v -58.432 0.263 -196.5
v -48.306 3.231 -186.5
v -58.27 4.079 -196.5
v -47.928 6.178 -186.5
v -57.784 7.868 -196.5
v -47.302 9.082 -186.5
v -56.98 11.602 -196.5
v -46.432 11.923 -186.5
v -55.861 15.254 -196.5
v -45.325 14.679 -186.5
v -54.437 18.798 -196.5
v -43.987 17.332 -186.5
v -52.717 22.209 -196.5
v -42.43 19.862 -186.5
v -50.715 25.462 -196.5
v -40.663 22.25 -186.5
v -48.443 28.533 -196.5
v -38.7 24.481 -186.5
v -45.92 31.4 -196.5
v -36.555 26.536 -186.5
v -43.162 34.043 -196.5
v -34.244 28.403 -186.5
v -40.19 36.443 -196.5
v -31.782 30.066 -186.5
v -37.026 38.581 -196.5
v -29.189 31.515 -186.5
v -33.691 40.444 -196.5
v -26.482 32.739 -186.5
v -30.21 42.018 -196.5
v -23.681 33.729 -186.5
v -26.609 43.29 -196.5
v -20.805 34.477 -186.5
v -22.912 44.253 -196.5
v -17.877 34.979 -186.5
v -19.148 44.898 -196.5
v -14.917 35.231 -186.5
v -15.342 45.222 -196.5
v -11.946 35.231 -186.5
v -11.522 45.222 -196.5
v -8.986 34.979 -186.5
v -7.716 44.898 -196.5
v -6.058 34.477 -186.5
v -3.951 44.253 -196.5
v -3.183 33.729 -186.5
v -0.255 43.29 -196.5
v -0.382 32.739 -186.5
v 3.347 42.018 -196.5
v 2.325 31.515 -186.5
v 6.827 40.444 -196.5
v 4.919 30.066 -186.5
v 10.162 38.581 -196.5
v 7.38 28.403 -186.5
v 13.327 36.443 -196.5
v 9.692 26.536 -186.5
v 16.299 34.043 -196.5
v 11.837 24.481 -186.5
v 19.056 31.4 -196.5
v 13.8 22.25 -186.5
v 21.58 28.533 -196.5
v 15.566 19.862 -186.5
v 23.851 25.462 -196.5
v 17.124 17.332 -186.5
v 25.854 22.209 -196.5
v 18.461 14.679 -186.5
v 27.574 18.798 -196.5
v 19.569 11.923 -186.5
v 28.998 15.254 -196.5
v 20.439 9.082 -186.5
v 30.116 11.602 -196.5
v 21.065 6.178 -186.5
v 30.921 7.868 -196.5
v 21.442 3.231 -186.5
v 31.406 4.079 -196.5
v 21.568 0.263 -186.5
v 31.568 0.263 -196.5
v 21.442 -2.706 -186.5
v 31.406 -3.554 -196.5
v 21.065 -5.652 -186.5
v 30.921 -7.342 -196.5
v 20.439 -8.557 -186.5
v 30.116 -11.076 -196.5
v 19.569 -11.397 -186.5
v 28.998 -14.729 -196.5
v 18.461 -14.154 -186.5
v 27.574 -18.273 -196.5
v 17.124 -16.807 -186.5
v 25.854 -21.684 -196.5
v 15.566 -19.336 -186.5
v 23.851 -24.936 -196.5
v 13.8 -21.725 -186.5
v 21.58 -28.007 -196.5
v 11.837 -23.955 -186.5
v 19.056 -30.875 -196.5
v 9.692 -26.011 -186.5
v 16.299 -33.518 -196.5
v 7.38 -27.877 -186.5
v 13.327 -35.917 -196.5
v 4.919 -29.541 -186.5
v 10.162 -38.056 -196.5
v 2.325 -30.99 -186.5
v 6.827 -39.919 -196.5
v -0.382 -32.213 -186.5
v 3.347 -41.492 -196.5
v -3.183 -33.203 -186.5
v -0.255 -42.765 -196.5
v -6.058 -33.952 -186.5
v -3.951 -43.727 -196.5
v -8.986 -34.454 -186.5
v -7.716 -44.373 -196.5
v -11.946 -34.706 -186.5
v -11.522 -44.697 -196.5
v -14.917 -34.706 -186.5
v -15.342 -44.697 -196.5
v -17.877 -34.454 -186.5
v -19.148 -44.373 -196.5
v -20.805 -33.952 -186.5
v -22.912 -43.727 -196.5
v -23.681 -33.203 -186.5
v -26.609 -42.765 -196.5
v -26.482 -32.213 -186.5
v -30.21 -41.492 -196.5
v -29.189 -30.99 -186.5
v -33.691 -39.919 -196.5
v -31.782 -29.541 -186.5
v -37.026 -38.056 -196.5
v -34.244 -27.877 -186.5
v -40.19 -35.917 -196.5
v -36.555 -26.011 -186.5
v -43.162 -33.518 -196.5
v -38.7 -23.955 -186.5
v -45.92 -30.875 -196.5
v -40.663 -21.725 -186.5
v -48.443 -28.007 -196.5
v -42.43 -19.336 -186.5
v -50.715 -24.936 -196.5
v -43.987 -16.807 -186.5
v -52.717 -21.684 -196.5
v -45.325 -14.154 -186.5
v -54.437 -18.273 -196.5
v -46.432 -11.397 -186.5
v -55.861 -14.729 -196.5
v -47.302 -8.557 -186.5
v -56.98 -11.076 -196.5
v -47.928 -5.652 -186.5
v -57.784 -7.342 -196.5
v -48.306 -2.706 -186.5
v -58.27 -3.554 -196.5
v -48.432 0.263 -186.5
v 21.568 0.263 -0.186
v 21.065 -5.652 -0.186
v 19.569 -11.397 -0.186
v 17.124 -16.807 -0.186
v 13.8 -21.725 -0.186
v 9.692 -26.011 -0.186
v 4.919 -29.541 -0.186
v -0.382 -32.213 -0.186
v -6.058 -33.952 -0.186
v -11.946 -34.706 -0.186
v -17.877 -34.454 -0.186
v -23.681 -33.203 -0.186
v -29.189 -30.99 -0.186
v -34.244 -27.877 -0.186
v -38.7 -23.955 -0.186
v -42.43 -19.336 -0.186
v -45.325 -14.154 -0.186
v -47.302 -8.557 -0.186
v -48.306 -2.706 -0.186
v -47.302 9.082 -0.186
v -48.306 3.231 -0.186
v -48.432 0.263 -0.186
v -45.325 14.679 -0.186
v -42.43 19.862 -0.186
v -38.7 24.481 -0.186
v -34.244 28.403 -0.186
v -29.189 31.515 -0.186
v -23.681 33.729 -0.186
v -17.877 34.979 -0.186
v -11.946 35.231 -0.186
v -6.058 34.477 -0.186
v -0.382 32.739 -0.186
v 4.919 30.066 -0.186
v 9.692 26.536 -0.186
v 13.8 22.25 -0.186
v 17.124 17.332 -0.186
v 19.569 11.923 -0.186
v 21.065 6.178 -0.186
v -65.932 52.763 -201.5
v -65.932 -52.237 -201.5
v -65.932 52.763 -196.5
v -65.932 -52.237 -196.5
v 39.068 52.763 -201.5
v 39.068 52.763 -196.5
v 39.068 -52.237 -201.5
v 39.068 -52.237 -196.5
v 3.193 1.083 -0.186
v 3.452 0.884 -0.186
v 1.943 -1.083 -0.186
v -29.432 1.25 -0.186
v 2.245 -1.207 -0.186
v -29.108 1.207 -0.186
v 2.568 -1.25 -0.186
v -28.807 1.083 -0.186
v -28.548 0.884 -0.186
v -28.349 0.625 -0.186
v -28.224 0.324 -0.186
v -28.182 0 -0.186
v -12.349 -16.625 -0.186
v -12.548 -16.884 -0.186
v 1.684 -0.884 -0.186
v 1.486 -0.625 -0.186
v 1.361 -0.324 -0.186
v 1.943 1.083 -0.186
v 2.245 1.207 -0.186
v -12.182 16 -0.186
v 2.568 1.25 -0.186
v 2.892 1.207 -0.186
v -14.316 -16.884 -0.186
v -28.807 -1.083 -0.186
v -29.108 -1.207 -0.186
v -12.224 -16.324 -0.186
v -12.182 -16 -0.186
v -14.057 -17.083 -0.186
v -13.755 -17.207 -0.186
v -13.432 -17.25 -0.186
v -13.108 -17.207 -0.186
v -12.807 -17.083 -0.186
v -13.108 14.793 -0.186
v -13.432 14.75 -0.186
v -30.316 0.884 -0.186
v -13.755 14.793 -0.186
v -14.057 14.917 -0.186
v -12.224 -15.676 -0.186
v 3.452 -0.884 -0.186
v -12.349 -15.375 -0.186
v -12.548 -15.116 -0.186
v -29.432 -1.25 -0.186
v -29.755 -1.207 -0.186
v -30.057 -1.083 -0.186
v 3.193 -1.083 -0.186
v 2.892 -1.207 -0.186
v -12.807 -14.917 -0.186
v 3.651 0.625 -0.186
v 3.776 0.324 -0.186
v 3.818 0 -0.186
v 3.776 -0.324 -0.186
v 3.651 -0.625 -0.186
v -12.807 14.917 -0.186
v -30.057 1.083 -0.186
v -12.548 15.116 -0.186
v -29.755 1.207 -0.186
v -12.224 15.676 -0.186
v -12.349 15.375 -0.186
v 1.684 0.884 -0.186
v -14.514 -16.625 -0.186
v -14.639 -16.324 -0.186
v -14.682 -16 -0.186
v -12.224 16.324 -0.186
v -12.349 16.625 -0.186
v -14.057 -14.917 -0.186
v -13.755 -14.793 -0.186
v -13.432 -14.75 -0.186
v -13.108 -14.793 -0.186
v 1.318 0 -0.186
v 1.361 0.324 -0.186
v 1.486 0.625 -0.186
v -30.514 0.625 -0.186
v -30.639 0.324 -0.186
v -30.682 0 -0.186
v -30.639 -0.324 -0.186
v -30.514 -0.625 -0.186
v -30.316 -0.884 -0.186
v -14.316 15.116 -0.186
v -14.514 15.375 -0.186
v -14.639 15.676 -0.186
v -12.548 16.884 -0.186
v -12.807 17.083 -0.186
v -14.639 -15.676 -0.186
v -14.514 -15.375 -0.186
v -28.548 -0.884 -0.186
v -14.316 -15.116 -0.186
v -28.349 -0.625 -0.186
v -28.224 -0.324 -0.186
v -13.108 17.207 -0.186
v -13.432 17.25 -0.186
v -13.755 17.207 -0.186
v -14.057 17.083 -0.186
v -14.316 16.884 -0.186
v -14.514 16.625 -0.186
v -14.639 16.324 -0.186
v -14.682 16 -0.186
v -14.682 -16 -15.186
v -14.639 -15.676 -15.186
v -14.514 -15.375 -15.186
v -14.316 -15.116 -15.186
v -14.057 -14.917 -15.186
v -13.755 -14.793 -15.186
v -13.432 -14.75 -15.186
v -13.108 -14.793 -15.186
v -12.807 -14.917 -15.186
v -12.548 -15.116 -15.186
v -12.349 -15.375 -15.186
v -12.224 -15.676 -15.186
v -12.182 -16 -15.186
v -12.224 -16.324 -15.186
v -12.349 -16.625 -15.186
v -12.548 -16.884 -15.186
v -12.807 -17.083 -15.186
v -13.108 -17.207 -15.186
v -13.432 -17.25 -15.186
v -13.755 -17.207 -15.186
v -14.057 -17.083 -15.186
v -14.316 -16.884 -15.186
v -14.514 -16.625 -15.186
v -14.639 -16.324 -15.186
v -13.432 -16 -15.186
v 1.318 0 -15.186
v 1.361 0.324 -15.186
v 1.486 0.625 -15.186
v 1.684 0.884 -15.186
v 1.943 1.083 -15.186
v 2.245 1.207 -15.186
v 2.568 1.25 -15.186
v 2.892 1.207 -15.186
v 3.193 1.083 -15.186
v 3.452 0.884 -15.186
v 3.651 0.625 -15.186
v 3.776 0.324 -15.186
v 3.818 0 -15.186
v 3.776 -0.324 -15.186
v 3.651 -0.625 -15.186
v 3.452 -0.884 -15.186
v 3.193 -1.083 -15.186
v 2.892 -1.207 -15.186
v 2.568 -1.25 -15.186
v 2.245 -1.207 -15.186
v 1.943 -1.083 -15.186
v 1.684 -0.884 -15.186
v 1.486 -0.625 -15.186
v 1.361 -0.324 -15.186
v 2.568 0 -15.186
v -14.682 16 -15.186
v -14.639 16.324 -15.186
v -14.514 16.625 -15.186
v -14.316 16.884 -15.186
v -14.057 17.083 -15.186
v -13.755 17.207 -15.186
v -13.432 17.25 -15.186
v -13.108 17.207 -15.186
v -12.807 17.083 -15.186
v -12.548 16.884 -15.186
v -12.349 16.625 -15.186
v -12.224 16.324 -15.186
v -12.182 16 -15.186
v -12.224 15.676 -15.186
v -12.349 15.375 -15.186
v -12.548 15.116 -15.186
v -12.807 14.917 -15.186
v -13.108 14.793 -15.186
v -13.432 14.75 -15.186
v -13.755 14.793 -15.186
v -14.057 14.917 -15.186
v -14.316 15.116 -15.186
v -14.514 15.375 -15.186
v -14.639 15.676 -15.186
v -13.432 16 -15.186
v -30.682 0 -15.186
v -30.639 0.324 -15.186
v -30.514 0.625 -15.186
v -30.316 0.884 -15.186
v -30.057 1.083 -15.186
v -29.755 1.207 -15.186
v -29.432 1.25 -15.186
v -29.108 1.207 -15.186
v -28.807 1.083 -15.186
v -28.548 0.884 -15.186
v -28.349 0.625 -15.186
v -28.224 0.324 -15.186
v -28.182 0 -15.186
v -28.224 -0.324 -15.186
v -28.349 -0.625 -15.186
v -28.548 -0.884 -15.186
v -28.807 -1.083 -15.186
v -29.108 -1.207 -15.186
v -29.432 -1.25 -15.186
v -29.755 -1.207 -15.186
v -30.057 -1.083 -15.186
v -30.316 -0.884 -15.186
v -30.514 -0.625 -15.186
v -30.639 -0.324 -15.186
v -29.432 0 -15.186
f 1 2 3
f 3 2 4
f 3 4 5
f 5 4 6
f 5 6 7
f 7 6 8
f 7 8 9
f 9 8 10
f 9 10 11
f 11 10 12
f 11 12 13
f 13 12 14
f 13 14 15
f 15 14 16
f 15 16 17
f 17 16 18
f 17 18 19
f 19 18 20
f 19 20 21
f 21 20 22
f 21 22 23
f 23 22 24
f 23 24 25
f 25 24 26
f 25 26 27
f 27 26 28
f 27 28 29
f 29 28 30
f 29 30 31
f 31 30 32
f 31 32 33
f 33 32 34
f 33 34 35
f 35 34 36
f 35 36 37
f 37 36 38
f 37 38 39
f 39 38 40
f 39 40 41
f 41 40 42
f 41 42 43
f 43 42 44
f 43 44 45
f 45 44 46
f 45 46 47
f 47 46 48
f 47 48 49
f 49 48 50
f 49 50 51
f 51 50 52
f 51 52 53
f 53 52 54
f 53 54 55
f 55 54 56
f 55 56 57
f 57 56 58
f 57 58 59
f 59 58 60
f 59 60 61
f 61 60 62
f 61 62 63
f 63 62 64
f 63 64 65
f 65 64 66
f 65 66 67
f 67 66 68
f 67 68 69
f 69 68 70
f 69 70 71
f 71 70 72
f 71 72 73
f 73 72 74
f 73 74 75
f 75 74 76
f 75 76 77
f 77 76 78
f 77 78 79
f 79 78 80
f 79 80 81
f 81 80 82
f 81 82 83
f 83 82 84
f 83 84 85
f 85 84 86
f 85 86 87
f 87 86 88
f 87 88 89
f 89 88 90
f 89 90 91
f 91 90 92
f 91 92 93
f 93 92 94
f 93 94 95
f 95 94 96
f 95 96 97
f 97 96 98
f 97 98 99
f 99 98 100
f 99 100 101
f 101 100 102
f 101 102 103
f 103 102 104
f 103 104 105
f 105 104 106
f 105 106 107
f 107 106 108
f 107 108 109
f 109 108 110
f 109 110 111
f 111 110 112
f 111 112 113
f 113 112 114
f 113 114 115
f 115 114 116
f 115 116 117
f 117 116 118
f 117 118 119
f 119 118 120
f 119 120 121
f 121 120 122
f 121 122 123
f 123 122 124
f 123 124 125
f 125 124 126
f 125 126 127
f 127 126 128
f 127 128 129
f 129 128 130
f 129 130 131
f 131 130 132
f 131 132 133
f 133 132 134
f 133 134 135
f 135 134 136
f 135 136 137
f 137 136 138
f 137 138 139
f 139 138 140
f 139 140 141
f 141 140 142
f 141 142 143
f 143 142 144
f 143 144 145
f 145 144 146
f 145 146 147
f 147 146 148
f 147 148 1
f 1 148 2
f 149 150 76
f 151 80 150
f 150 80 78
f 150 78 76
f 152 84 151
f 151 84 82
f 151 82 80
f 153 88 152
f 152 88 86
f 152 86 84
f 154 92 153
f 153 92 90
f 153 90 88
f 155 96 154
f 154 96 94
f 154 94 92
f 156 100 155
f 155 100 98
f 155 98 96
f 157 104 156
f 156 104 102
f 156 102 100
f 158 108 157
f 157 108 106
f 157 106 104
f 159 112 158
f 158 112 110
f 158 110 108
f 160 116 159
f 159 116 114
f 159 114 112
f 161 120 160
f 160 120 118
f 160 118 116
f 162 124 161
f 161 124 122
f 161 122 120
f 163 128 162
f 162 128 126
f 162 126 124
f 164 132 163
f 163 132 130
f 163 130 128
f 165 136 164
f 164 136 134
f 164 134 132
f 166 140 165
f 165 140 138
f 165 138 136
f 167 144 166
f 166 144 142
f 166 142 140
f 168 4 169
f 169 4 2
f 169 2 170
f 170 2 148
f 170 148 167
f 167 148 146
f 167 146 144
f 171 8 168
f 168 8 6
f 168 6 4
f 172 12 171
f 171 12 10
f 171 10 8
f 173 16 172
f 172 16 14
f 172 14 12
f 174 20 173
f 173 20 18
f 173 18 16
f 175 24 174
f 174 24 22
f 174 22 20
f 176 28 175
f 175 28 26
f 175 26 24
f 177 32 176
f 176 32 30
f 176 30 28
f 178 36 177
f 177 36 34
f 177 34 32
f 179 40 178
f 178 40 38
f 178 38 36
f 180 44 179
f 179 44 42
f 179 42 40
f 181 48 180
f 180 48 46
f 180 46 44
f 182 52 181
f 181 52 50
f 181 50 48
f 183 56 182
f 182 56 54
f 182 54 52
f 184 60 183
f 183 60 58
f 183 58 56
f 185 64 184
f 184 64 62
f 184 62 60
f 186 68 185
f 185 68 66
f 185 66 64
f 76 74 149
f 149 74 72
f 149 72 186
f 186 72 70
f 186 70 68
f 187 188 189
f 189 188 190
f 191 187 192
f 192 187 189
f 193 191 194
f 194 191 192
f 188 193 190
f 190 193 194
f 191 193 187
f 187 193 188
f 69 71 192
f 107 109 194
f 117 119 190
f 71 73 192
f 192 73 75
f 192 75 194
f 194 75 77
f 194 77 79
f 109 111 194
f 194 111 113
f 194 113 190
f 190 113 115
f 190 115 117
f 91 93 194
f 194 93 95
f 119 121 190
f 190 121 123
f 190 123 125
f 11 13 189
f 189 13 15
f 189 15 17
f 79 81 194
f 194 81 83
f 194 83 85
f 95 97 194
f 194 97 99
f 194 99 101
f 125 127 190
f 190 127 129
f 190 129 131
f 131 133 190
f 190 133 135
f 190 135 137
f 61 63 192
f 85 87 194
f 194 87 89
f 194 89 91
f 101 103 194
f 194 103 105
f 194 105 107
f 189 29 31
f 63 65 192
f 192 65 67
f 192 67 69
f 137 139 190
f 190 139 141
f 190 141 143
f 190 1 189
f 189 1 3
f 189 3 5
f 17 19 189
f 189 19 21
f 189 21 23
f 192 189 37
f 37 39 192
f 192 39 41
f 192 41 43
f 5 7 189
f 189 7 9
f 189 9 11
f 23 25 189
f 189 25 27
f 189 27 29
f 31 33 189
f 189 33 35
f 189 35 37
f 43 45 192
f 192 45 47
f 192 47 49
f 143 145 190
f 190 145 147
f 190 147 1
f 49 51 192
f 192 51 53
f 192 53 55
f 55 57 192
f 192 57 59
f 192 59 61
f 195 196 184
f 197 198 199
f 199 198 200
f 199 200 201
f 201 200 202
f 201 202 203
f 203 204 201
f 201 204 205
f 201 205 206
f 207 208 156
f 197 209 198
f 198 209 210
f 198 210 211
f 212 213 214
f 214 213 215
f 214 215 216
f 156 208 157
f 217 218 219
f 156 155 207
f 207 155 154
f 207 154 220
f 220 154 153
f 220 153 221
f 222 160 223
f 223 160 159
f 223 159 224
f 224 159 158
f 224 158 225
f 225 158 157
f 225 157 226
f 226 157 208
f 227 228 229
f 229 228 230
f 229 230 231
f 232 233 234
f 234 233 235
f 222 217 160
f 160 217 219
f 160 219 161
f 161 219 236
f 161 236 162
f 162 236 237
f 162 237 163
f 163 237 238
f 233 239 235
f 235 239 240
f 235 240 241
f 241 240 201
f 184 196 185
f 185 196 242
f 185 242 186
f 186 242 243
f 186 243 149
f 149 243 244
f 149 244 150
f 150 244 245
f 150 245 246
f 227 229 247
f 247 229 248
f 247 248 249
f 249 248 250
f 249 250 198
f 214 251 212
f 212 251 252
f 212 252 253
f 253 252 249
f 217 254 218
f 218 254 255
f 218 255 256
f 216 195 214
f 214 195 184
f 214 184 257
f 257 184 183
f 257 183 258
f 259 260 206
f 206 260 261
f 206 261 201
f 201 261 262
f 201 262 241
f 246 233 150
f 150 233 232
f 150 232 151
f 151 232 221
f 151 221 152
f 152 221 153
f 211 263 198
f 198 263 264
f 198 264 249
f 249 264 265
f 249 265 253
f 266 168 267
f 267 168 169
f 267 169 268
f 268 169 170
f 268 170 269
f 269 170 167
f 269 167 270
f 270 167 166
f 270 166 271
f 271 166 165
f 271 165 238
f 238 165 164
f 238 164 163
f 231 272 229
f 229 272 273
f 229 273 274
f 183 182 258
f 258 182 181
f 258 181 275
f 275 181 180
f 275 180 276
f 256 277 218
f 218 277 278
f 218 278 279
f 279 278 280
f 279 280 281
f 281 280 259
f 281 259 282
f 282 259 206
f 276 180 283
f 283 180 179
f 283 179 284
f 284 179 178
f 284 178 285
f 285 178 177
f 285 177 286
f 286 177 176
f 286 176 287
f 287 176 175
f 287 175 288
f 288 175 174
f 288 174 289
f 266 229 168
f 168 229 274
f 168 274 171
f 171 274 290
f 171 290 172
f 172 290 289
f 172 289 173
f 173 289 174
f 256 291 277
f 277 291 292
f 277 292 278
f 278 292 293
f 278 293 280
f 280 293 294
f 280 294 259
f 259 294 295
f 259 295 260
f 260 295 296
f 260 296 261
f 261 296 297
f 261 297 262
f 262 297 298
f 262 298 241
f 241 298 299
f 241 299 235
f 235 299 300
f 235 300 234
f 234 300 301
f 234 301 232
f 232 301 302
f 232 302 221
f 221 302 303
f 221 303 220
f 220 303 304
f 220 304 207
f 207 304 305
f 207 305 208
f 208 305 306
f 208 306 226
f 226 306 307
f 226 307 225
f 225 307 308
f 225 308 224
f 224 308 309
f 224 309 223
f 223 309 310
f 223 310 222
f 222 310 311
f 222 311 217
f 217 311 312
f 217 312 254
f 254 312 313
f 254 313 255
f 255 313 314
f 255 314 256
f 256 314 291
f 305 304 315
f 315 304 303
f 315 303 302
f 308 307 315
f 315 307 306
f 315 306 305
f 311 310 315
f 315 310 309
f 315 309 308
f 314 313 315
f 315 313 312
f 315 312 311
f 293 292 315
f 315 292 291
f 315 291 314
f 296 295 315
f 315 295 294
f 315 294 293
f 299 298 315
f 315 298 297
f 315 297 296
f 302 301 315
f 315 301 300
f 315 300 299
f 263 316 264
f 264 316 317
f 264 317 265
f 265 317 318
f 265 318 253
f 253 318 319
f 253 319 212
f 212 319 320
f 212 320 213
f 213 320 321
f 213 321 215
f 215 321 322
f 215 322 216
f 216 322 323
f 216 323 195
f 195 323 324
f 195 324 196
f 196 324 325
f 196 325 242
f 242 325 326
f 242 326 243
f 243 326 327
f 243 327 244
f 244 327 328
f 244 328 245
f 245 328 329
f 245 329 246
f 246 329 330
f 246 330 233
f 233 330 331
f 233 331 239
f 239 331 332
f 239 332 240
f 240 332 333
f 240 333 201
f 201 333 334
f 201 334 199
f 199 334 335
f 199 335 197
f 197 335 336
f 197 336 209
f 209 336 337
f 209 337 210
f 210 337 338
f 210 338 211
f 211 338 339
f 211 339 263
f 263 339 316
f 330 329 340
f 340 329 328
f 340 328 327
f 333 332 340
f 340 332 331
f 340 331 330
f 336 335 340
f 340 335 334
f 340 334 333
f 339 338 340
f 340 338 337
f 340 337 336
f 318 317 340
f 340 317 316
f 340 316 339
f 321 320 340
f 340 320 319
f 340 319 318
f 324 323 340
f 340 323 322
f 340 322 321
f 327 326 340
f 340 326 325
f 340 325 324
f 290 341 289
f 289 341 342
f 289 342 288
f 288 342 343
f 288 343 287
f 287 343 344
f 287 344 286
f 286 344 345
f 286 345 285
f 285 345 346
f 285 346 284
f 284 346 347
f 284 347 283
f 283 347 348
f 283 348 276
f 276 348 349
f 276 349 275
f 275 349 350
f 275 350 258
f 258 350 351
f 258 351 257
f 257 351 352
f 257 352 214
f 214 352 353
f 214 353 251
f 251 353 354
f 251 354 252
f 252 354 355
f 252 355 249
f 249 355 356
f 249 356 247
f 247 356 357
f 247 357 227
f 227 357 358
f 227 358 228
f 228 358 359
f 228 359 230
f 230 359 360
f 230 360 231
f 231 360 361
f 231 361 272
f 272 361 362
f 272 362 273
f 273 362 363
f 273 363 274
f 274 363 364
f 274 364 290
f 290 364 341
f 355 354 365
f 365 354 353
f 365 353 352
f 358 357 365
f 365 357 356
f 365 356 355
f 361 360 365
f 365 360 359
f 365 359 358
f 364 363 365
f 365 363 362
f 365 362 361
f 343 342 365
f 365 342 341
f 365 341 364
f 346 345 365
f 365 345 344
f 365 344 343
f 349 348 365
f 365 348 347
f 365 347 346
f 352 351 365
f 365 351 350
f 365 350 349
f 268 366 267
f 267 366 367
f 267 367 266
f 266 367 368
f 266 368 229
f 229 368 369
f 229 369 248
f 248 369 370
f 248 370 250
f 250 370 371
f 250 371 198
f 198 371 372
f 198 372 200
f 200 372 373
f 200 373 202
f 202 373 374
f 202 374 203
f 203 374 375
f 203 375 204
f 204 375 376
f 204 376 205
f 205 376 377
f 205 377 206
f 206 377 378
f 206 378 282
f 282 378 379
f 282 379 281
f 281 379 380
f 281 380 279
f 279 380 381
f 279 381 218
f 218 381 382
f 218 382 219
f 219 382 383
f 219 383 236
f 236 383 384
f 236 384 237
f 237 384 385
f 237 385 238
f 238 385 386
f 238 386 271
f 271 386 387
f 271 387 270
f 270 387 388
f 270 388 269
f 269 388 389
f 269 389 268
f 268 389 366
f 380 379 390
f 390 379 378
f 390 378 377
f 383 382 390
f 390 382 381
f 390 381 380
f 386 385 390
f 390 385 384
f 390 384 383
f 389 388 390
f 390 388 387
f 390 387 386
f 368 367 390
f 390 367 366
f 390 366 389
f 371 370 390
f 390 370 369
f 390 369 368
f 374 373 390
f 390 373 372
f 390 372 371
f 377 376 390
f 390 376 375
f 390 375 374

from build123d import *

# Parameters (mm, degrees)
CROQUIS1_W                  = 248.76
CROQUIS1_H                  = 195
SALIENTE_EXTRUIR1_DEPTH     = 5
CROQUIS2_W                  = 48
CROQUIS2_H                  = 30
CROQUIS2_W_2                = 30
CORTAR_EXTRUIR1_DEPTH       = 2
CROQUIS3_R                  = 2.375
CORTAR_EXTRUIR2_DEPTH       = 10
CROQUIS4_R                  = 35
SALIENTE_EXTRUIR2_DEPTH     = 196.5
CROQUIS5_R                  = 12.5
CORTAR_EXTRUIR3_DEPTH       = 10
CROQUIS12_W                 = 12
CROQUIS12_H                 = 30
SALIENTE_EXTRUIR3_DEPTH     = 4
REDONDEO1_R                 = 10
REDONDEO2_R                 = 10
REDONDEO3_R                 = 10
CORTAR_EXTRUIR5_DEPTH       = 255.266033949
CORTAR_EXTRUIR5_DEPTH_BACK  = 255.266033949
CROQUIS13_R                 = 1.625
CORTAR_EXTRUIR7_DEPTH       = 2
CROQUIS16_W                 = 105
CROQUIS16_H                 = 105
SALIENTE_EXTRUIR4_DEPTH     = 5
CHAFL_N1_SIZE               = 10
CROQUIS18_R                 = 1.625
CORTAR_EXTRUIR8_DEPTH       = 5
CORTAR_EXTRUIR13_DEPTH      = 323.659278543
CORTAR_EXTRUIR13_DEPTH_BACK = 323.659278543
CROQUIS20_W                 = 248.76
CROQUIS20_H                 = 10.372418668
CORTAR_EXTRUIR14_DEPTH      = 237.837226846
CORTAR_EXTRUIR14_DEPTH_BACK = 237.837226846
CROQUIS21_W                 = 75.005088334
CROQUIS21_H                 = 42.55455878
CROQUIS21_W_2               = 80.687232336
CROQUIS21_H_2               = 44.755283474
CORTAR_EXTRUIR15_DEPTH      = 219.307426984
CORTAR_EXTRUIR15_DEPTH_BACK = 15
CROQUIS22_R                 = 1.25


with BuildPart() as part:
    # Croquis1 → Saliente-Extruir1 (new body)
    with BuildSketch(Plane.XY):
        with Locations((7.088293187, 0.26268)):
            Rectangle(CROQUIS1_W, CROQUIS1_H)
    extrude(amount=SALIENTE_EXTRUIR1_DEPTH)

    # Croquis2 → Cortar-Extruir1 (cut)
    with BuildSketch(Plane.XY.offset(5)):
        with Locations((-93.291706813, -82.23732)):
            Rectangle(CROQUIS2_W, CROQUIS2_H)
        with Locations((116.468293187, 82.76268)):
            Rectangle(CROQUIS2_W_2, CROQUIS2_H)
        with Locations((116.468293187, -82.23732)):
            Rectangle(CROQUIS2_W_2, CROQUIS2_H)
        with Locations((-93.291706813, 82.76268)):
            Rectangle(CROQUIS2_W, CROQUIS2_H)
    extrude(amount=-CORTAR_EXTRUIR1_DEPTH, mode=Mode.SUBTRACT)

    # Croquis3 → Cortar-Extruir2 (cut)
    with BuildSketch(Plane.XY.offset(5)):
        with Locations((-93.291706813, 83.76268)):
            Circle(CROQUIS3_R)
        with Locations((-93.291706813, -83.23732)):
            Circle(CROQUIS3_R)
        with Locations((116.468293187, 83.76268)):
            Circle(CROQUIS3_R)
        with Locations((116.468293187, -83.23732)):
            Circle(CROQUIS3_R)
    extrude(amount=-CORTAR_EXTRUIR2_DEPTH, mode=Mode.SUBTRACT)

    # Croquis4 → Saliente-Extruir2 (add)
    with BuildSketch(Plane(origin=(0, 0, 0), x_dir=(-1, 0, 0), z_dir=(0, 0, -1))):
        with Locations((13.431706813, 0.26268)):
            Circle(CROQUIS4_R)
    extrude(amount=SALIENTE_EXTRUIR2_DEPTH)

    # Croquis5 → Cortar-Extruir3 (cut)
    with BuildSketch(Plane(origin=(0, 0, 0), x_dir=(-1, 0, 0), z_dir=(0, 0, -1))):
        with Locations((-76.968293187, 0.26268)):
            Circle(CROQUIS5_R)
    extrude(amount=-CORTAR_EXTRUIR3_DEPTH, mode=Mode.SUBTRACT)

    # Croquis12 → Saliente-Extruir3 (add, symmetric)
    with BuildSketch(Plane(origin=(7.088293187, 0, 0), x_dir=(0, 0, -1), z_dir=(1, 0, 0))):
        with Locations((6, 82.76268)):
            Rectangle(CROQUIS12_W, CROQUIS12_H)
        with Locations((6, -82.23732)):
            Rectangle(CROQUIS12_W, CROQUIS12_H)
    extrude(amount=SALIENTE_EXTRUIR3_DEPTH, both=True)

    # Redondeo1
    redondeo1_edges = [part.edges().sort_by_distance(p)[0] for p in [
        (7.088293187, -67.23732, 0),
        (7.088293187, 67.76268, 0),
    ]]
    fillet(redondeo1_edges, radius=REDONDEO1_R)

    # Redondeo2
    redondeo2_edges = [part.edges().sort_by_distance(p)[0] for p in [
        (7.088293187, 67.76268, -12),
        (7.088293187, -67.23732, -12),
    ]]
    fillet(redondeo2_edges, radius=REDONDEO2_R)

    # Redondeo3
    redondeo3_edges = [part.edges().sort_by_distance(p)[0] for p in [
        (7.088293187, -97.23732, -12),
        (7.088293187, 97.76268, -12),
    ]]
    fillet(redondeo3_edges, radius=REDONDEO3_R)

    # Croquis13 → Cortar-Extruir5 (cut, two sides: drawn at the far end of the back side and taken through both)
    with BuildSketch(Plane(origin=(11.088293187, 0, 0), x_dir=(0, 0, -1), z_dir=(1, 0, 0)).offset(-CORTAR_EXTRUIR5_DEPTH_BACK)):
        with Locations((6, 87.76268)):
            Circle(CROQUIS13_R)
        with Locations((6, 77.76268)):
            Circle(CROQUIS13_R)
        with Locations((6, -77.23732)):
            Circle(CROQUIS13_R)
        with Locations((6, -87.23732)):
            Circle(CROQUIS13_R)
    extrude(amount=CORTAR_EXTRUIR5_DEPTH + CORTAR_EXTRUIR5_DEPTH_BACK, mode=Mode.SUBTRACT)

    # Croquis15 → Cortar-Extruir7 (cut)
    with BuildSketch(Plane.XY.offset(5)):
        Polygon((111.468293187, 67.76268), (131.468293187, 67.76268), (131.468293187, -67.23732), (111.468293187, -67.23732), (111.468293187, -59.48732), (125.218293187, -59.48732), (125.218293187, 60.01268), (111.468293187, 60.01268), align=None)
    extrude(amount=-CORTAR_EXTRUIR7_DEPTH, mode=Mode.SUBTRACT)

    # Croquis16 → Saliente-Extruir4 (add)
    with BuildSketch(Plane(origin=(0, 0, -196.5), x_dir=(-1, 0, 0), z_dir=(0, 0, -1))):
        with Locations((13.431706813, 0.26268)):
            Rectangle(CROQUIS16_W, CROQUIS16_H)
    extrude(amount=SALIENTE_EXTRUIR4_DEPTH)

    # Chaflán1
    chafl_n1_edges = [part.edges().sort_by_distance(p)[0] for p in [
        (21.568293187, 0.26268, -196.5),
    ]]
    chamfer(chafl_n1_edges, length=CHAFL_N1_SIZE)

    # Croquis18 → Cortar-Extruir8 (cut)
    with BuildSketch(Plane.XY.offset(5)):
        with Locations((-13.431706813, 16)):
            Circle(CROQUIS18_R)
        with Locations((2.568293187, 0)):
            Circle(CROQUIS18_R)
        with Locations((-13.431706813, -16)):
            Circle(CROQUIS18_R)
        with Locations((-29.431706813, 0)):
            Circle(CROQUIS18_R)
    extrude(amount=-CORTAR_EXTRUIR8_DEPTH, mode=Mode.SUBTRACT)

    # Croquis20 → Cortar-Extruir13 (cut, two sides: drawn at the far end of the back side and taken through both)
    with BuildSketch(Plane(origin=(-65.931706813, -52.23732, -201.5), x_dir=(1, 0, 0), z_dir=(0, 1, 0)).offset(-CORTAR_EXTRUIR13_DEPTH_BACK)):
        with Locations((73.02, -206.5)):
            Rectangle(CROQUIS20_W, CROQUIS20_H)
    extrude(amount=CORTAR_EXTRUIR13_DEPTH + CORTAR_EXTRUIR13_DEPTH_BACK, mode=Mode.SUBTRACT)


with BuildPart() as cortar_extruir13_piece_1:
    # of the separate pieces the step leaves, piece 1, a body of its own (cortar_extruir13_pieces)
    add(part.part.solids().sort_by_distance((-58.431706813, 0.26268, -196.5))[0])

    # Croquis22 → Cortar-Extruir15 (cut, two sides: drawn at the far end of the back side and taken through both)
    with BuildSketch(Plane.XY.offset(-0.186209334).offset(-CORTAR_EXTRUIR15_DEPTH_BACK)):
        with Locations((-29.431706813, 0)):
            Circle(CROQUIS22_R)
        with Locations((-13.431706813, 16)):
            Circle(CROQUIS22_R)
        with Locations((2.568293187, 0)):
            Circle(CROQUIS22_R)
        with Locations((-13.431706813, -16)):
            Circle(CROQUIS22_R)
    extrude(amount=CORTAR_EXTRUIR15_DEPTH + CORTAR_EXTRUIR15_DEPTH_BACK, mode=Mode.SUBTRACT)


with BuildPart() as cortar_extruir13_piece_2:
    # of the separate pieces the step leaves, piece 2, a body of its own (cortar_extruir13_pieces)
    add(part.part.solids().sort_by_distance((11.088293187, 97.76268, -2))[0])


with BuildPart() as cortar_extruir13_piece_3:
    # of the separate pieces the step leaves, piece 3, a body of its own (cortar_extruir13_pieces)
    add(part.part.solids().sort_by_distance((11.088293187, -97.23732, -2))[0])


with BuildPart() as cortar_extruir14_tool:
    # Croquis21 → Cortar-Extruir14 (new, two sides: drawn at the far end of the back side and taken through both)
    with BuildSketch(Plane(origin=(11.088293187, 0, 0), x_dir=(0, 0, -1), z_dir=(1, 0, 0)).offset(-CORTAR_EXTRUIR14_DEPTH_BACK)):
        with Locations((37.688753501, -75.96004061)):
            Rectangle(CROQUIS21_W, CROQUIS21_H)
        with Locations((40.529825502, 75.385038263)):
            Rectangle(CROQUIS21_W_2, CROQUIS21_H_2)
    extrude(amount=CORTAR_EXTRUIR14_DEPTH + CORTAR_EXTRUIR14_DEPTH_BACK)


with BuildPart() as cortar_extruir13_piece_2_1:
    add(cortar_extruir13_piece_2.part)

    # Cortar-Extruir14: cut by cortar_extruir14_tool
    add(cortar_extruir14_tool.part, mode=Mode.SUBTRACT)


with BuildPart() as cortar_extruir13_piece_3_1:
    add(cortar_extruir13_piece_3.part)

    # Cortar-Extruir14: cut by cortar_extruir14_tool
    add(cortar_extruir14_tool.part, mode=Mode.SUBTRACT)


solid = cortar_extruir13_piece_1.part
